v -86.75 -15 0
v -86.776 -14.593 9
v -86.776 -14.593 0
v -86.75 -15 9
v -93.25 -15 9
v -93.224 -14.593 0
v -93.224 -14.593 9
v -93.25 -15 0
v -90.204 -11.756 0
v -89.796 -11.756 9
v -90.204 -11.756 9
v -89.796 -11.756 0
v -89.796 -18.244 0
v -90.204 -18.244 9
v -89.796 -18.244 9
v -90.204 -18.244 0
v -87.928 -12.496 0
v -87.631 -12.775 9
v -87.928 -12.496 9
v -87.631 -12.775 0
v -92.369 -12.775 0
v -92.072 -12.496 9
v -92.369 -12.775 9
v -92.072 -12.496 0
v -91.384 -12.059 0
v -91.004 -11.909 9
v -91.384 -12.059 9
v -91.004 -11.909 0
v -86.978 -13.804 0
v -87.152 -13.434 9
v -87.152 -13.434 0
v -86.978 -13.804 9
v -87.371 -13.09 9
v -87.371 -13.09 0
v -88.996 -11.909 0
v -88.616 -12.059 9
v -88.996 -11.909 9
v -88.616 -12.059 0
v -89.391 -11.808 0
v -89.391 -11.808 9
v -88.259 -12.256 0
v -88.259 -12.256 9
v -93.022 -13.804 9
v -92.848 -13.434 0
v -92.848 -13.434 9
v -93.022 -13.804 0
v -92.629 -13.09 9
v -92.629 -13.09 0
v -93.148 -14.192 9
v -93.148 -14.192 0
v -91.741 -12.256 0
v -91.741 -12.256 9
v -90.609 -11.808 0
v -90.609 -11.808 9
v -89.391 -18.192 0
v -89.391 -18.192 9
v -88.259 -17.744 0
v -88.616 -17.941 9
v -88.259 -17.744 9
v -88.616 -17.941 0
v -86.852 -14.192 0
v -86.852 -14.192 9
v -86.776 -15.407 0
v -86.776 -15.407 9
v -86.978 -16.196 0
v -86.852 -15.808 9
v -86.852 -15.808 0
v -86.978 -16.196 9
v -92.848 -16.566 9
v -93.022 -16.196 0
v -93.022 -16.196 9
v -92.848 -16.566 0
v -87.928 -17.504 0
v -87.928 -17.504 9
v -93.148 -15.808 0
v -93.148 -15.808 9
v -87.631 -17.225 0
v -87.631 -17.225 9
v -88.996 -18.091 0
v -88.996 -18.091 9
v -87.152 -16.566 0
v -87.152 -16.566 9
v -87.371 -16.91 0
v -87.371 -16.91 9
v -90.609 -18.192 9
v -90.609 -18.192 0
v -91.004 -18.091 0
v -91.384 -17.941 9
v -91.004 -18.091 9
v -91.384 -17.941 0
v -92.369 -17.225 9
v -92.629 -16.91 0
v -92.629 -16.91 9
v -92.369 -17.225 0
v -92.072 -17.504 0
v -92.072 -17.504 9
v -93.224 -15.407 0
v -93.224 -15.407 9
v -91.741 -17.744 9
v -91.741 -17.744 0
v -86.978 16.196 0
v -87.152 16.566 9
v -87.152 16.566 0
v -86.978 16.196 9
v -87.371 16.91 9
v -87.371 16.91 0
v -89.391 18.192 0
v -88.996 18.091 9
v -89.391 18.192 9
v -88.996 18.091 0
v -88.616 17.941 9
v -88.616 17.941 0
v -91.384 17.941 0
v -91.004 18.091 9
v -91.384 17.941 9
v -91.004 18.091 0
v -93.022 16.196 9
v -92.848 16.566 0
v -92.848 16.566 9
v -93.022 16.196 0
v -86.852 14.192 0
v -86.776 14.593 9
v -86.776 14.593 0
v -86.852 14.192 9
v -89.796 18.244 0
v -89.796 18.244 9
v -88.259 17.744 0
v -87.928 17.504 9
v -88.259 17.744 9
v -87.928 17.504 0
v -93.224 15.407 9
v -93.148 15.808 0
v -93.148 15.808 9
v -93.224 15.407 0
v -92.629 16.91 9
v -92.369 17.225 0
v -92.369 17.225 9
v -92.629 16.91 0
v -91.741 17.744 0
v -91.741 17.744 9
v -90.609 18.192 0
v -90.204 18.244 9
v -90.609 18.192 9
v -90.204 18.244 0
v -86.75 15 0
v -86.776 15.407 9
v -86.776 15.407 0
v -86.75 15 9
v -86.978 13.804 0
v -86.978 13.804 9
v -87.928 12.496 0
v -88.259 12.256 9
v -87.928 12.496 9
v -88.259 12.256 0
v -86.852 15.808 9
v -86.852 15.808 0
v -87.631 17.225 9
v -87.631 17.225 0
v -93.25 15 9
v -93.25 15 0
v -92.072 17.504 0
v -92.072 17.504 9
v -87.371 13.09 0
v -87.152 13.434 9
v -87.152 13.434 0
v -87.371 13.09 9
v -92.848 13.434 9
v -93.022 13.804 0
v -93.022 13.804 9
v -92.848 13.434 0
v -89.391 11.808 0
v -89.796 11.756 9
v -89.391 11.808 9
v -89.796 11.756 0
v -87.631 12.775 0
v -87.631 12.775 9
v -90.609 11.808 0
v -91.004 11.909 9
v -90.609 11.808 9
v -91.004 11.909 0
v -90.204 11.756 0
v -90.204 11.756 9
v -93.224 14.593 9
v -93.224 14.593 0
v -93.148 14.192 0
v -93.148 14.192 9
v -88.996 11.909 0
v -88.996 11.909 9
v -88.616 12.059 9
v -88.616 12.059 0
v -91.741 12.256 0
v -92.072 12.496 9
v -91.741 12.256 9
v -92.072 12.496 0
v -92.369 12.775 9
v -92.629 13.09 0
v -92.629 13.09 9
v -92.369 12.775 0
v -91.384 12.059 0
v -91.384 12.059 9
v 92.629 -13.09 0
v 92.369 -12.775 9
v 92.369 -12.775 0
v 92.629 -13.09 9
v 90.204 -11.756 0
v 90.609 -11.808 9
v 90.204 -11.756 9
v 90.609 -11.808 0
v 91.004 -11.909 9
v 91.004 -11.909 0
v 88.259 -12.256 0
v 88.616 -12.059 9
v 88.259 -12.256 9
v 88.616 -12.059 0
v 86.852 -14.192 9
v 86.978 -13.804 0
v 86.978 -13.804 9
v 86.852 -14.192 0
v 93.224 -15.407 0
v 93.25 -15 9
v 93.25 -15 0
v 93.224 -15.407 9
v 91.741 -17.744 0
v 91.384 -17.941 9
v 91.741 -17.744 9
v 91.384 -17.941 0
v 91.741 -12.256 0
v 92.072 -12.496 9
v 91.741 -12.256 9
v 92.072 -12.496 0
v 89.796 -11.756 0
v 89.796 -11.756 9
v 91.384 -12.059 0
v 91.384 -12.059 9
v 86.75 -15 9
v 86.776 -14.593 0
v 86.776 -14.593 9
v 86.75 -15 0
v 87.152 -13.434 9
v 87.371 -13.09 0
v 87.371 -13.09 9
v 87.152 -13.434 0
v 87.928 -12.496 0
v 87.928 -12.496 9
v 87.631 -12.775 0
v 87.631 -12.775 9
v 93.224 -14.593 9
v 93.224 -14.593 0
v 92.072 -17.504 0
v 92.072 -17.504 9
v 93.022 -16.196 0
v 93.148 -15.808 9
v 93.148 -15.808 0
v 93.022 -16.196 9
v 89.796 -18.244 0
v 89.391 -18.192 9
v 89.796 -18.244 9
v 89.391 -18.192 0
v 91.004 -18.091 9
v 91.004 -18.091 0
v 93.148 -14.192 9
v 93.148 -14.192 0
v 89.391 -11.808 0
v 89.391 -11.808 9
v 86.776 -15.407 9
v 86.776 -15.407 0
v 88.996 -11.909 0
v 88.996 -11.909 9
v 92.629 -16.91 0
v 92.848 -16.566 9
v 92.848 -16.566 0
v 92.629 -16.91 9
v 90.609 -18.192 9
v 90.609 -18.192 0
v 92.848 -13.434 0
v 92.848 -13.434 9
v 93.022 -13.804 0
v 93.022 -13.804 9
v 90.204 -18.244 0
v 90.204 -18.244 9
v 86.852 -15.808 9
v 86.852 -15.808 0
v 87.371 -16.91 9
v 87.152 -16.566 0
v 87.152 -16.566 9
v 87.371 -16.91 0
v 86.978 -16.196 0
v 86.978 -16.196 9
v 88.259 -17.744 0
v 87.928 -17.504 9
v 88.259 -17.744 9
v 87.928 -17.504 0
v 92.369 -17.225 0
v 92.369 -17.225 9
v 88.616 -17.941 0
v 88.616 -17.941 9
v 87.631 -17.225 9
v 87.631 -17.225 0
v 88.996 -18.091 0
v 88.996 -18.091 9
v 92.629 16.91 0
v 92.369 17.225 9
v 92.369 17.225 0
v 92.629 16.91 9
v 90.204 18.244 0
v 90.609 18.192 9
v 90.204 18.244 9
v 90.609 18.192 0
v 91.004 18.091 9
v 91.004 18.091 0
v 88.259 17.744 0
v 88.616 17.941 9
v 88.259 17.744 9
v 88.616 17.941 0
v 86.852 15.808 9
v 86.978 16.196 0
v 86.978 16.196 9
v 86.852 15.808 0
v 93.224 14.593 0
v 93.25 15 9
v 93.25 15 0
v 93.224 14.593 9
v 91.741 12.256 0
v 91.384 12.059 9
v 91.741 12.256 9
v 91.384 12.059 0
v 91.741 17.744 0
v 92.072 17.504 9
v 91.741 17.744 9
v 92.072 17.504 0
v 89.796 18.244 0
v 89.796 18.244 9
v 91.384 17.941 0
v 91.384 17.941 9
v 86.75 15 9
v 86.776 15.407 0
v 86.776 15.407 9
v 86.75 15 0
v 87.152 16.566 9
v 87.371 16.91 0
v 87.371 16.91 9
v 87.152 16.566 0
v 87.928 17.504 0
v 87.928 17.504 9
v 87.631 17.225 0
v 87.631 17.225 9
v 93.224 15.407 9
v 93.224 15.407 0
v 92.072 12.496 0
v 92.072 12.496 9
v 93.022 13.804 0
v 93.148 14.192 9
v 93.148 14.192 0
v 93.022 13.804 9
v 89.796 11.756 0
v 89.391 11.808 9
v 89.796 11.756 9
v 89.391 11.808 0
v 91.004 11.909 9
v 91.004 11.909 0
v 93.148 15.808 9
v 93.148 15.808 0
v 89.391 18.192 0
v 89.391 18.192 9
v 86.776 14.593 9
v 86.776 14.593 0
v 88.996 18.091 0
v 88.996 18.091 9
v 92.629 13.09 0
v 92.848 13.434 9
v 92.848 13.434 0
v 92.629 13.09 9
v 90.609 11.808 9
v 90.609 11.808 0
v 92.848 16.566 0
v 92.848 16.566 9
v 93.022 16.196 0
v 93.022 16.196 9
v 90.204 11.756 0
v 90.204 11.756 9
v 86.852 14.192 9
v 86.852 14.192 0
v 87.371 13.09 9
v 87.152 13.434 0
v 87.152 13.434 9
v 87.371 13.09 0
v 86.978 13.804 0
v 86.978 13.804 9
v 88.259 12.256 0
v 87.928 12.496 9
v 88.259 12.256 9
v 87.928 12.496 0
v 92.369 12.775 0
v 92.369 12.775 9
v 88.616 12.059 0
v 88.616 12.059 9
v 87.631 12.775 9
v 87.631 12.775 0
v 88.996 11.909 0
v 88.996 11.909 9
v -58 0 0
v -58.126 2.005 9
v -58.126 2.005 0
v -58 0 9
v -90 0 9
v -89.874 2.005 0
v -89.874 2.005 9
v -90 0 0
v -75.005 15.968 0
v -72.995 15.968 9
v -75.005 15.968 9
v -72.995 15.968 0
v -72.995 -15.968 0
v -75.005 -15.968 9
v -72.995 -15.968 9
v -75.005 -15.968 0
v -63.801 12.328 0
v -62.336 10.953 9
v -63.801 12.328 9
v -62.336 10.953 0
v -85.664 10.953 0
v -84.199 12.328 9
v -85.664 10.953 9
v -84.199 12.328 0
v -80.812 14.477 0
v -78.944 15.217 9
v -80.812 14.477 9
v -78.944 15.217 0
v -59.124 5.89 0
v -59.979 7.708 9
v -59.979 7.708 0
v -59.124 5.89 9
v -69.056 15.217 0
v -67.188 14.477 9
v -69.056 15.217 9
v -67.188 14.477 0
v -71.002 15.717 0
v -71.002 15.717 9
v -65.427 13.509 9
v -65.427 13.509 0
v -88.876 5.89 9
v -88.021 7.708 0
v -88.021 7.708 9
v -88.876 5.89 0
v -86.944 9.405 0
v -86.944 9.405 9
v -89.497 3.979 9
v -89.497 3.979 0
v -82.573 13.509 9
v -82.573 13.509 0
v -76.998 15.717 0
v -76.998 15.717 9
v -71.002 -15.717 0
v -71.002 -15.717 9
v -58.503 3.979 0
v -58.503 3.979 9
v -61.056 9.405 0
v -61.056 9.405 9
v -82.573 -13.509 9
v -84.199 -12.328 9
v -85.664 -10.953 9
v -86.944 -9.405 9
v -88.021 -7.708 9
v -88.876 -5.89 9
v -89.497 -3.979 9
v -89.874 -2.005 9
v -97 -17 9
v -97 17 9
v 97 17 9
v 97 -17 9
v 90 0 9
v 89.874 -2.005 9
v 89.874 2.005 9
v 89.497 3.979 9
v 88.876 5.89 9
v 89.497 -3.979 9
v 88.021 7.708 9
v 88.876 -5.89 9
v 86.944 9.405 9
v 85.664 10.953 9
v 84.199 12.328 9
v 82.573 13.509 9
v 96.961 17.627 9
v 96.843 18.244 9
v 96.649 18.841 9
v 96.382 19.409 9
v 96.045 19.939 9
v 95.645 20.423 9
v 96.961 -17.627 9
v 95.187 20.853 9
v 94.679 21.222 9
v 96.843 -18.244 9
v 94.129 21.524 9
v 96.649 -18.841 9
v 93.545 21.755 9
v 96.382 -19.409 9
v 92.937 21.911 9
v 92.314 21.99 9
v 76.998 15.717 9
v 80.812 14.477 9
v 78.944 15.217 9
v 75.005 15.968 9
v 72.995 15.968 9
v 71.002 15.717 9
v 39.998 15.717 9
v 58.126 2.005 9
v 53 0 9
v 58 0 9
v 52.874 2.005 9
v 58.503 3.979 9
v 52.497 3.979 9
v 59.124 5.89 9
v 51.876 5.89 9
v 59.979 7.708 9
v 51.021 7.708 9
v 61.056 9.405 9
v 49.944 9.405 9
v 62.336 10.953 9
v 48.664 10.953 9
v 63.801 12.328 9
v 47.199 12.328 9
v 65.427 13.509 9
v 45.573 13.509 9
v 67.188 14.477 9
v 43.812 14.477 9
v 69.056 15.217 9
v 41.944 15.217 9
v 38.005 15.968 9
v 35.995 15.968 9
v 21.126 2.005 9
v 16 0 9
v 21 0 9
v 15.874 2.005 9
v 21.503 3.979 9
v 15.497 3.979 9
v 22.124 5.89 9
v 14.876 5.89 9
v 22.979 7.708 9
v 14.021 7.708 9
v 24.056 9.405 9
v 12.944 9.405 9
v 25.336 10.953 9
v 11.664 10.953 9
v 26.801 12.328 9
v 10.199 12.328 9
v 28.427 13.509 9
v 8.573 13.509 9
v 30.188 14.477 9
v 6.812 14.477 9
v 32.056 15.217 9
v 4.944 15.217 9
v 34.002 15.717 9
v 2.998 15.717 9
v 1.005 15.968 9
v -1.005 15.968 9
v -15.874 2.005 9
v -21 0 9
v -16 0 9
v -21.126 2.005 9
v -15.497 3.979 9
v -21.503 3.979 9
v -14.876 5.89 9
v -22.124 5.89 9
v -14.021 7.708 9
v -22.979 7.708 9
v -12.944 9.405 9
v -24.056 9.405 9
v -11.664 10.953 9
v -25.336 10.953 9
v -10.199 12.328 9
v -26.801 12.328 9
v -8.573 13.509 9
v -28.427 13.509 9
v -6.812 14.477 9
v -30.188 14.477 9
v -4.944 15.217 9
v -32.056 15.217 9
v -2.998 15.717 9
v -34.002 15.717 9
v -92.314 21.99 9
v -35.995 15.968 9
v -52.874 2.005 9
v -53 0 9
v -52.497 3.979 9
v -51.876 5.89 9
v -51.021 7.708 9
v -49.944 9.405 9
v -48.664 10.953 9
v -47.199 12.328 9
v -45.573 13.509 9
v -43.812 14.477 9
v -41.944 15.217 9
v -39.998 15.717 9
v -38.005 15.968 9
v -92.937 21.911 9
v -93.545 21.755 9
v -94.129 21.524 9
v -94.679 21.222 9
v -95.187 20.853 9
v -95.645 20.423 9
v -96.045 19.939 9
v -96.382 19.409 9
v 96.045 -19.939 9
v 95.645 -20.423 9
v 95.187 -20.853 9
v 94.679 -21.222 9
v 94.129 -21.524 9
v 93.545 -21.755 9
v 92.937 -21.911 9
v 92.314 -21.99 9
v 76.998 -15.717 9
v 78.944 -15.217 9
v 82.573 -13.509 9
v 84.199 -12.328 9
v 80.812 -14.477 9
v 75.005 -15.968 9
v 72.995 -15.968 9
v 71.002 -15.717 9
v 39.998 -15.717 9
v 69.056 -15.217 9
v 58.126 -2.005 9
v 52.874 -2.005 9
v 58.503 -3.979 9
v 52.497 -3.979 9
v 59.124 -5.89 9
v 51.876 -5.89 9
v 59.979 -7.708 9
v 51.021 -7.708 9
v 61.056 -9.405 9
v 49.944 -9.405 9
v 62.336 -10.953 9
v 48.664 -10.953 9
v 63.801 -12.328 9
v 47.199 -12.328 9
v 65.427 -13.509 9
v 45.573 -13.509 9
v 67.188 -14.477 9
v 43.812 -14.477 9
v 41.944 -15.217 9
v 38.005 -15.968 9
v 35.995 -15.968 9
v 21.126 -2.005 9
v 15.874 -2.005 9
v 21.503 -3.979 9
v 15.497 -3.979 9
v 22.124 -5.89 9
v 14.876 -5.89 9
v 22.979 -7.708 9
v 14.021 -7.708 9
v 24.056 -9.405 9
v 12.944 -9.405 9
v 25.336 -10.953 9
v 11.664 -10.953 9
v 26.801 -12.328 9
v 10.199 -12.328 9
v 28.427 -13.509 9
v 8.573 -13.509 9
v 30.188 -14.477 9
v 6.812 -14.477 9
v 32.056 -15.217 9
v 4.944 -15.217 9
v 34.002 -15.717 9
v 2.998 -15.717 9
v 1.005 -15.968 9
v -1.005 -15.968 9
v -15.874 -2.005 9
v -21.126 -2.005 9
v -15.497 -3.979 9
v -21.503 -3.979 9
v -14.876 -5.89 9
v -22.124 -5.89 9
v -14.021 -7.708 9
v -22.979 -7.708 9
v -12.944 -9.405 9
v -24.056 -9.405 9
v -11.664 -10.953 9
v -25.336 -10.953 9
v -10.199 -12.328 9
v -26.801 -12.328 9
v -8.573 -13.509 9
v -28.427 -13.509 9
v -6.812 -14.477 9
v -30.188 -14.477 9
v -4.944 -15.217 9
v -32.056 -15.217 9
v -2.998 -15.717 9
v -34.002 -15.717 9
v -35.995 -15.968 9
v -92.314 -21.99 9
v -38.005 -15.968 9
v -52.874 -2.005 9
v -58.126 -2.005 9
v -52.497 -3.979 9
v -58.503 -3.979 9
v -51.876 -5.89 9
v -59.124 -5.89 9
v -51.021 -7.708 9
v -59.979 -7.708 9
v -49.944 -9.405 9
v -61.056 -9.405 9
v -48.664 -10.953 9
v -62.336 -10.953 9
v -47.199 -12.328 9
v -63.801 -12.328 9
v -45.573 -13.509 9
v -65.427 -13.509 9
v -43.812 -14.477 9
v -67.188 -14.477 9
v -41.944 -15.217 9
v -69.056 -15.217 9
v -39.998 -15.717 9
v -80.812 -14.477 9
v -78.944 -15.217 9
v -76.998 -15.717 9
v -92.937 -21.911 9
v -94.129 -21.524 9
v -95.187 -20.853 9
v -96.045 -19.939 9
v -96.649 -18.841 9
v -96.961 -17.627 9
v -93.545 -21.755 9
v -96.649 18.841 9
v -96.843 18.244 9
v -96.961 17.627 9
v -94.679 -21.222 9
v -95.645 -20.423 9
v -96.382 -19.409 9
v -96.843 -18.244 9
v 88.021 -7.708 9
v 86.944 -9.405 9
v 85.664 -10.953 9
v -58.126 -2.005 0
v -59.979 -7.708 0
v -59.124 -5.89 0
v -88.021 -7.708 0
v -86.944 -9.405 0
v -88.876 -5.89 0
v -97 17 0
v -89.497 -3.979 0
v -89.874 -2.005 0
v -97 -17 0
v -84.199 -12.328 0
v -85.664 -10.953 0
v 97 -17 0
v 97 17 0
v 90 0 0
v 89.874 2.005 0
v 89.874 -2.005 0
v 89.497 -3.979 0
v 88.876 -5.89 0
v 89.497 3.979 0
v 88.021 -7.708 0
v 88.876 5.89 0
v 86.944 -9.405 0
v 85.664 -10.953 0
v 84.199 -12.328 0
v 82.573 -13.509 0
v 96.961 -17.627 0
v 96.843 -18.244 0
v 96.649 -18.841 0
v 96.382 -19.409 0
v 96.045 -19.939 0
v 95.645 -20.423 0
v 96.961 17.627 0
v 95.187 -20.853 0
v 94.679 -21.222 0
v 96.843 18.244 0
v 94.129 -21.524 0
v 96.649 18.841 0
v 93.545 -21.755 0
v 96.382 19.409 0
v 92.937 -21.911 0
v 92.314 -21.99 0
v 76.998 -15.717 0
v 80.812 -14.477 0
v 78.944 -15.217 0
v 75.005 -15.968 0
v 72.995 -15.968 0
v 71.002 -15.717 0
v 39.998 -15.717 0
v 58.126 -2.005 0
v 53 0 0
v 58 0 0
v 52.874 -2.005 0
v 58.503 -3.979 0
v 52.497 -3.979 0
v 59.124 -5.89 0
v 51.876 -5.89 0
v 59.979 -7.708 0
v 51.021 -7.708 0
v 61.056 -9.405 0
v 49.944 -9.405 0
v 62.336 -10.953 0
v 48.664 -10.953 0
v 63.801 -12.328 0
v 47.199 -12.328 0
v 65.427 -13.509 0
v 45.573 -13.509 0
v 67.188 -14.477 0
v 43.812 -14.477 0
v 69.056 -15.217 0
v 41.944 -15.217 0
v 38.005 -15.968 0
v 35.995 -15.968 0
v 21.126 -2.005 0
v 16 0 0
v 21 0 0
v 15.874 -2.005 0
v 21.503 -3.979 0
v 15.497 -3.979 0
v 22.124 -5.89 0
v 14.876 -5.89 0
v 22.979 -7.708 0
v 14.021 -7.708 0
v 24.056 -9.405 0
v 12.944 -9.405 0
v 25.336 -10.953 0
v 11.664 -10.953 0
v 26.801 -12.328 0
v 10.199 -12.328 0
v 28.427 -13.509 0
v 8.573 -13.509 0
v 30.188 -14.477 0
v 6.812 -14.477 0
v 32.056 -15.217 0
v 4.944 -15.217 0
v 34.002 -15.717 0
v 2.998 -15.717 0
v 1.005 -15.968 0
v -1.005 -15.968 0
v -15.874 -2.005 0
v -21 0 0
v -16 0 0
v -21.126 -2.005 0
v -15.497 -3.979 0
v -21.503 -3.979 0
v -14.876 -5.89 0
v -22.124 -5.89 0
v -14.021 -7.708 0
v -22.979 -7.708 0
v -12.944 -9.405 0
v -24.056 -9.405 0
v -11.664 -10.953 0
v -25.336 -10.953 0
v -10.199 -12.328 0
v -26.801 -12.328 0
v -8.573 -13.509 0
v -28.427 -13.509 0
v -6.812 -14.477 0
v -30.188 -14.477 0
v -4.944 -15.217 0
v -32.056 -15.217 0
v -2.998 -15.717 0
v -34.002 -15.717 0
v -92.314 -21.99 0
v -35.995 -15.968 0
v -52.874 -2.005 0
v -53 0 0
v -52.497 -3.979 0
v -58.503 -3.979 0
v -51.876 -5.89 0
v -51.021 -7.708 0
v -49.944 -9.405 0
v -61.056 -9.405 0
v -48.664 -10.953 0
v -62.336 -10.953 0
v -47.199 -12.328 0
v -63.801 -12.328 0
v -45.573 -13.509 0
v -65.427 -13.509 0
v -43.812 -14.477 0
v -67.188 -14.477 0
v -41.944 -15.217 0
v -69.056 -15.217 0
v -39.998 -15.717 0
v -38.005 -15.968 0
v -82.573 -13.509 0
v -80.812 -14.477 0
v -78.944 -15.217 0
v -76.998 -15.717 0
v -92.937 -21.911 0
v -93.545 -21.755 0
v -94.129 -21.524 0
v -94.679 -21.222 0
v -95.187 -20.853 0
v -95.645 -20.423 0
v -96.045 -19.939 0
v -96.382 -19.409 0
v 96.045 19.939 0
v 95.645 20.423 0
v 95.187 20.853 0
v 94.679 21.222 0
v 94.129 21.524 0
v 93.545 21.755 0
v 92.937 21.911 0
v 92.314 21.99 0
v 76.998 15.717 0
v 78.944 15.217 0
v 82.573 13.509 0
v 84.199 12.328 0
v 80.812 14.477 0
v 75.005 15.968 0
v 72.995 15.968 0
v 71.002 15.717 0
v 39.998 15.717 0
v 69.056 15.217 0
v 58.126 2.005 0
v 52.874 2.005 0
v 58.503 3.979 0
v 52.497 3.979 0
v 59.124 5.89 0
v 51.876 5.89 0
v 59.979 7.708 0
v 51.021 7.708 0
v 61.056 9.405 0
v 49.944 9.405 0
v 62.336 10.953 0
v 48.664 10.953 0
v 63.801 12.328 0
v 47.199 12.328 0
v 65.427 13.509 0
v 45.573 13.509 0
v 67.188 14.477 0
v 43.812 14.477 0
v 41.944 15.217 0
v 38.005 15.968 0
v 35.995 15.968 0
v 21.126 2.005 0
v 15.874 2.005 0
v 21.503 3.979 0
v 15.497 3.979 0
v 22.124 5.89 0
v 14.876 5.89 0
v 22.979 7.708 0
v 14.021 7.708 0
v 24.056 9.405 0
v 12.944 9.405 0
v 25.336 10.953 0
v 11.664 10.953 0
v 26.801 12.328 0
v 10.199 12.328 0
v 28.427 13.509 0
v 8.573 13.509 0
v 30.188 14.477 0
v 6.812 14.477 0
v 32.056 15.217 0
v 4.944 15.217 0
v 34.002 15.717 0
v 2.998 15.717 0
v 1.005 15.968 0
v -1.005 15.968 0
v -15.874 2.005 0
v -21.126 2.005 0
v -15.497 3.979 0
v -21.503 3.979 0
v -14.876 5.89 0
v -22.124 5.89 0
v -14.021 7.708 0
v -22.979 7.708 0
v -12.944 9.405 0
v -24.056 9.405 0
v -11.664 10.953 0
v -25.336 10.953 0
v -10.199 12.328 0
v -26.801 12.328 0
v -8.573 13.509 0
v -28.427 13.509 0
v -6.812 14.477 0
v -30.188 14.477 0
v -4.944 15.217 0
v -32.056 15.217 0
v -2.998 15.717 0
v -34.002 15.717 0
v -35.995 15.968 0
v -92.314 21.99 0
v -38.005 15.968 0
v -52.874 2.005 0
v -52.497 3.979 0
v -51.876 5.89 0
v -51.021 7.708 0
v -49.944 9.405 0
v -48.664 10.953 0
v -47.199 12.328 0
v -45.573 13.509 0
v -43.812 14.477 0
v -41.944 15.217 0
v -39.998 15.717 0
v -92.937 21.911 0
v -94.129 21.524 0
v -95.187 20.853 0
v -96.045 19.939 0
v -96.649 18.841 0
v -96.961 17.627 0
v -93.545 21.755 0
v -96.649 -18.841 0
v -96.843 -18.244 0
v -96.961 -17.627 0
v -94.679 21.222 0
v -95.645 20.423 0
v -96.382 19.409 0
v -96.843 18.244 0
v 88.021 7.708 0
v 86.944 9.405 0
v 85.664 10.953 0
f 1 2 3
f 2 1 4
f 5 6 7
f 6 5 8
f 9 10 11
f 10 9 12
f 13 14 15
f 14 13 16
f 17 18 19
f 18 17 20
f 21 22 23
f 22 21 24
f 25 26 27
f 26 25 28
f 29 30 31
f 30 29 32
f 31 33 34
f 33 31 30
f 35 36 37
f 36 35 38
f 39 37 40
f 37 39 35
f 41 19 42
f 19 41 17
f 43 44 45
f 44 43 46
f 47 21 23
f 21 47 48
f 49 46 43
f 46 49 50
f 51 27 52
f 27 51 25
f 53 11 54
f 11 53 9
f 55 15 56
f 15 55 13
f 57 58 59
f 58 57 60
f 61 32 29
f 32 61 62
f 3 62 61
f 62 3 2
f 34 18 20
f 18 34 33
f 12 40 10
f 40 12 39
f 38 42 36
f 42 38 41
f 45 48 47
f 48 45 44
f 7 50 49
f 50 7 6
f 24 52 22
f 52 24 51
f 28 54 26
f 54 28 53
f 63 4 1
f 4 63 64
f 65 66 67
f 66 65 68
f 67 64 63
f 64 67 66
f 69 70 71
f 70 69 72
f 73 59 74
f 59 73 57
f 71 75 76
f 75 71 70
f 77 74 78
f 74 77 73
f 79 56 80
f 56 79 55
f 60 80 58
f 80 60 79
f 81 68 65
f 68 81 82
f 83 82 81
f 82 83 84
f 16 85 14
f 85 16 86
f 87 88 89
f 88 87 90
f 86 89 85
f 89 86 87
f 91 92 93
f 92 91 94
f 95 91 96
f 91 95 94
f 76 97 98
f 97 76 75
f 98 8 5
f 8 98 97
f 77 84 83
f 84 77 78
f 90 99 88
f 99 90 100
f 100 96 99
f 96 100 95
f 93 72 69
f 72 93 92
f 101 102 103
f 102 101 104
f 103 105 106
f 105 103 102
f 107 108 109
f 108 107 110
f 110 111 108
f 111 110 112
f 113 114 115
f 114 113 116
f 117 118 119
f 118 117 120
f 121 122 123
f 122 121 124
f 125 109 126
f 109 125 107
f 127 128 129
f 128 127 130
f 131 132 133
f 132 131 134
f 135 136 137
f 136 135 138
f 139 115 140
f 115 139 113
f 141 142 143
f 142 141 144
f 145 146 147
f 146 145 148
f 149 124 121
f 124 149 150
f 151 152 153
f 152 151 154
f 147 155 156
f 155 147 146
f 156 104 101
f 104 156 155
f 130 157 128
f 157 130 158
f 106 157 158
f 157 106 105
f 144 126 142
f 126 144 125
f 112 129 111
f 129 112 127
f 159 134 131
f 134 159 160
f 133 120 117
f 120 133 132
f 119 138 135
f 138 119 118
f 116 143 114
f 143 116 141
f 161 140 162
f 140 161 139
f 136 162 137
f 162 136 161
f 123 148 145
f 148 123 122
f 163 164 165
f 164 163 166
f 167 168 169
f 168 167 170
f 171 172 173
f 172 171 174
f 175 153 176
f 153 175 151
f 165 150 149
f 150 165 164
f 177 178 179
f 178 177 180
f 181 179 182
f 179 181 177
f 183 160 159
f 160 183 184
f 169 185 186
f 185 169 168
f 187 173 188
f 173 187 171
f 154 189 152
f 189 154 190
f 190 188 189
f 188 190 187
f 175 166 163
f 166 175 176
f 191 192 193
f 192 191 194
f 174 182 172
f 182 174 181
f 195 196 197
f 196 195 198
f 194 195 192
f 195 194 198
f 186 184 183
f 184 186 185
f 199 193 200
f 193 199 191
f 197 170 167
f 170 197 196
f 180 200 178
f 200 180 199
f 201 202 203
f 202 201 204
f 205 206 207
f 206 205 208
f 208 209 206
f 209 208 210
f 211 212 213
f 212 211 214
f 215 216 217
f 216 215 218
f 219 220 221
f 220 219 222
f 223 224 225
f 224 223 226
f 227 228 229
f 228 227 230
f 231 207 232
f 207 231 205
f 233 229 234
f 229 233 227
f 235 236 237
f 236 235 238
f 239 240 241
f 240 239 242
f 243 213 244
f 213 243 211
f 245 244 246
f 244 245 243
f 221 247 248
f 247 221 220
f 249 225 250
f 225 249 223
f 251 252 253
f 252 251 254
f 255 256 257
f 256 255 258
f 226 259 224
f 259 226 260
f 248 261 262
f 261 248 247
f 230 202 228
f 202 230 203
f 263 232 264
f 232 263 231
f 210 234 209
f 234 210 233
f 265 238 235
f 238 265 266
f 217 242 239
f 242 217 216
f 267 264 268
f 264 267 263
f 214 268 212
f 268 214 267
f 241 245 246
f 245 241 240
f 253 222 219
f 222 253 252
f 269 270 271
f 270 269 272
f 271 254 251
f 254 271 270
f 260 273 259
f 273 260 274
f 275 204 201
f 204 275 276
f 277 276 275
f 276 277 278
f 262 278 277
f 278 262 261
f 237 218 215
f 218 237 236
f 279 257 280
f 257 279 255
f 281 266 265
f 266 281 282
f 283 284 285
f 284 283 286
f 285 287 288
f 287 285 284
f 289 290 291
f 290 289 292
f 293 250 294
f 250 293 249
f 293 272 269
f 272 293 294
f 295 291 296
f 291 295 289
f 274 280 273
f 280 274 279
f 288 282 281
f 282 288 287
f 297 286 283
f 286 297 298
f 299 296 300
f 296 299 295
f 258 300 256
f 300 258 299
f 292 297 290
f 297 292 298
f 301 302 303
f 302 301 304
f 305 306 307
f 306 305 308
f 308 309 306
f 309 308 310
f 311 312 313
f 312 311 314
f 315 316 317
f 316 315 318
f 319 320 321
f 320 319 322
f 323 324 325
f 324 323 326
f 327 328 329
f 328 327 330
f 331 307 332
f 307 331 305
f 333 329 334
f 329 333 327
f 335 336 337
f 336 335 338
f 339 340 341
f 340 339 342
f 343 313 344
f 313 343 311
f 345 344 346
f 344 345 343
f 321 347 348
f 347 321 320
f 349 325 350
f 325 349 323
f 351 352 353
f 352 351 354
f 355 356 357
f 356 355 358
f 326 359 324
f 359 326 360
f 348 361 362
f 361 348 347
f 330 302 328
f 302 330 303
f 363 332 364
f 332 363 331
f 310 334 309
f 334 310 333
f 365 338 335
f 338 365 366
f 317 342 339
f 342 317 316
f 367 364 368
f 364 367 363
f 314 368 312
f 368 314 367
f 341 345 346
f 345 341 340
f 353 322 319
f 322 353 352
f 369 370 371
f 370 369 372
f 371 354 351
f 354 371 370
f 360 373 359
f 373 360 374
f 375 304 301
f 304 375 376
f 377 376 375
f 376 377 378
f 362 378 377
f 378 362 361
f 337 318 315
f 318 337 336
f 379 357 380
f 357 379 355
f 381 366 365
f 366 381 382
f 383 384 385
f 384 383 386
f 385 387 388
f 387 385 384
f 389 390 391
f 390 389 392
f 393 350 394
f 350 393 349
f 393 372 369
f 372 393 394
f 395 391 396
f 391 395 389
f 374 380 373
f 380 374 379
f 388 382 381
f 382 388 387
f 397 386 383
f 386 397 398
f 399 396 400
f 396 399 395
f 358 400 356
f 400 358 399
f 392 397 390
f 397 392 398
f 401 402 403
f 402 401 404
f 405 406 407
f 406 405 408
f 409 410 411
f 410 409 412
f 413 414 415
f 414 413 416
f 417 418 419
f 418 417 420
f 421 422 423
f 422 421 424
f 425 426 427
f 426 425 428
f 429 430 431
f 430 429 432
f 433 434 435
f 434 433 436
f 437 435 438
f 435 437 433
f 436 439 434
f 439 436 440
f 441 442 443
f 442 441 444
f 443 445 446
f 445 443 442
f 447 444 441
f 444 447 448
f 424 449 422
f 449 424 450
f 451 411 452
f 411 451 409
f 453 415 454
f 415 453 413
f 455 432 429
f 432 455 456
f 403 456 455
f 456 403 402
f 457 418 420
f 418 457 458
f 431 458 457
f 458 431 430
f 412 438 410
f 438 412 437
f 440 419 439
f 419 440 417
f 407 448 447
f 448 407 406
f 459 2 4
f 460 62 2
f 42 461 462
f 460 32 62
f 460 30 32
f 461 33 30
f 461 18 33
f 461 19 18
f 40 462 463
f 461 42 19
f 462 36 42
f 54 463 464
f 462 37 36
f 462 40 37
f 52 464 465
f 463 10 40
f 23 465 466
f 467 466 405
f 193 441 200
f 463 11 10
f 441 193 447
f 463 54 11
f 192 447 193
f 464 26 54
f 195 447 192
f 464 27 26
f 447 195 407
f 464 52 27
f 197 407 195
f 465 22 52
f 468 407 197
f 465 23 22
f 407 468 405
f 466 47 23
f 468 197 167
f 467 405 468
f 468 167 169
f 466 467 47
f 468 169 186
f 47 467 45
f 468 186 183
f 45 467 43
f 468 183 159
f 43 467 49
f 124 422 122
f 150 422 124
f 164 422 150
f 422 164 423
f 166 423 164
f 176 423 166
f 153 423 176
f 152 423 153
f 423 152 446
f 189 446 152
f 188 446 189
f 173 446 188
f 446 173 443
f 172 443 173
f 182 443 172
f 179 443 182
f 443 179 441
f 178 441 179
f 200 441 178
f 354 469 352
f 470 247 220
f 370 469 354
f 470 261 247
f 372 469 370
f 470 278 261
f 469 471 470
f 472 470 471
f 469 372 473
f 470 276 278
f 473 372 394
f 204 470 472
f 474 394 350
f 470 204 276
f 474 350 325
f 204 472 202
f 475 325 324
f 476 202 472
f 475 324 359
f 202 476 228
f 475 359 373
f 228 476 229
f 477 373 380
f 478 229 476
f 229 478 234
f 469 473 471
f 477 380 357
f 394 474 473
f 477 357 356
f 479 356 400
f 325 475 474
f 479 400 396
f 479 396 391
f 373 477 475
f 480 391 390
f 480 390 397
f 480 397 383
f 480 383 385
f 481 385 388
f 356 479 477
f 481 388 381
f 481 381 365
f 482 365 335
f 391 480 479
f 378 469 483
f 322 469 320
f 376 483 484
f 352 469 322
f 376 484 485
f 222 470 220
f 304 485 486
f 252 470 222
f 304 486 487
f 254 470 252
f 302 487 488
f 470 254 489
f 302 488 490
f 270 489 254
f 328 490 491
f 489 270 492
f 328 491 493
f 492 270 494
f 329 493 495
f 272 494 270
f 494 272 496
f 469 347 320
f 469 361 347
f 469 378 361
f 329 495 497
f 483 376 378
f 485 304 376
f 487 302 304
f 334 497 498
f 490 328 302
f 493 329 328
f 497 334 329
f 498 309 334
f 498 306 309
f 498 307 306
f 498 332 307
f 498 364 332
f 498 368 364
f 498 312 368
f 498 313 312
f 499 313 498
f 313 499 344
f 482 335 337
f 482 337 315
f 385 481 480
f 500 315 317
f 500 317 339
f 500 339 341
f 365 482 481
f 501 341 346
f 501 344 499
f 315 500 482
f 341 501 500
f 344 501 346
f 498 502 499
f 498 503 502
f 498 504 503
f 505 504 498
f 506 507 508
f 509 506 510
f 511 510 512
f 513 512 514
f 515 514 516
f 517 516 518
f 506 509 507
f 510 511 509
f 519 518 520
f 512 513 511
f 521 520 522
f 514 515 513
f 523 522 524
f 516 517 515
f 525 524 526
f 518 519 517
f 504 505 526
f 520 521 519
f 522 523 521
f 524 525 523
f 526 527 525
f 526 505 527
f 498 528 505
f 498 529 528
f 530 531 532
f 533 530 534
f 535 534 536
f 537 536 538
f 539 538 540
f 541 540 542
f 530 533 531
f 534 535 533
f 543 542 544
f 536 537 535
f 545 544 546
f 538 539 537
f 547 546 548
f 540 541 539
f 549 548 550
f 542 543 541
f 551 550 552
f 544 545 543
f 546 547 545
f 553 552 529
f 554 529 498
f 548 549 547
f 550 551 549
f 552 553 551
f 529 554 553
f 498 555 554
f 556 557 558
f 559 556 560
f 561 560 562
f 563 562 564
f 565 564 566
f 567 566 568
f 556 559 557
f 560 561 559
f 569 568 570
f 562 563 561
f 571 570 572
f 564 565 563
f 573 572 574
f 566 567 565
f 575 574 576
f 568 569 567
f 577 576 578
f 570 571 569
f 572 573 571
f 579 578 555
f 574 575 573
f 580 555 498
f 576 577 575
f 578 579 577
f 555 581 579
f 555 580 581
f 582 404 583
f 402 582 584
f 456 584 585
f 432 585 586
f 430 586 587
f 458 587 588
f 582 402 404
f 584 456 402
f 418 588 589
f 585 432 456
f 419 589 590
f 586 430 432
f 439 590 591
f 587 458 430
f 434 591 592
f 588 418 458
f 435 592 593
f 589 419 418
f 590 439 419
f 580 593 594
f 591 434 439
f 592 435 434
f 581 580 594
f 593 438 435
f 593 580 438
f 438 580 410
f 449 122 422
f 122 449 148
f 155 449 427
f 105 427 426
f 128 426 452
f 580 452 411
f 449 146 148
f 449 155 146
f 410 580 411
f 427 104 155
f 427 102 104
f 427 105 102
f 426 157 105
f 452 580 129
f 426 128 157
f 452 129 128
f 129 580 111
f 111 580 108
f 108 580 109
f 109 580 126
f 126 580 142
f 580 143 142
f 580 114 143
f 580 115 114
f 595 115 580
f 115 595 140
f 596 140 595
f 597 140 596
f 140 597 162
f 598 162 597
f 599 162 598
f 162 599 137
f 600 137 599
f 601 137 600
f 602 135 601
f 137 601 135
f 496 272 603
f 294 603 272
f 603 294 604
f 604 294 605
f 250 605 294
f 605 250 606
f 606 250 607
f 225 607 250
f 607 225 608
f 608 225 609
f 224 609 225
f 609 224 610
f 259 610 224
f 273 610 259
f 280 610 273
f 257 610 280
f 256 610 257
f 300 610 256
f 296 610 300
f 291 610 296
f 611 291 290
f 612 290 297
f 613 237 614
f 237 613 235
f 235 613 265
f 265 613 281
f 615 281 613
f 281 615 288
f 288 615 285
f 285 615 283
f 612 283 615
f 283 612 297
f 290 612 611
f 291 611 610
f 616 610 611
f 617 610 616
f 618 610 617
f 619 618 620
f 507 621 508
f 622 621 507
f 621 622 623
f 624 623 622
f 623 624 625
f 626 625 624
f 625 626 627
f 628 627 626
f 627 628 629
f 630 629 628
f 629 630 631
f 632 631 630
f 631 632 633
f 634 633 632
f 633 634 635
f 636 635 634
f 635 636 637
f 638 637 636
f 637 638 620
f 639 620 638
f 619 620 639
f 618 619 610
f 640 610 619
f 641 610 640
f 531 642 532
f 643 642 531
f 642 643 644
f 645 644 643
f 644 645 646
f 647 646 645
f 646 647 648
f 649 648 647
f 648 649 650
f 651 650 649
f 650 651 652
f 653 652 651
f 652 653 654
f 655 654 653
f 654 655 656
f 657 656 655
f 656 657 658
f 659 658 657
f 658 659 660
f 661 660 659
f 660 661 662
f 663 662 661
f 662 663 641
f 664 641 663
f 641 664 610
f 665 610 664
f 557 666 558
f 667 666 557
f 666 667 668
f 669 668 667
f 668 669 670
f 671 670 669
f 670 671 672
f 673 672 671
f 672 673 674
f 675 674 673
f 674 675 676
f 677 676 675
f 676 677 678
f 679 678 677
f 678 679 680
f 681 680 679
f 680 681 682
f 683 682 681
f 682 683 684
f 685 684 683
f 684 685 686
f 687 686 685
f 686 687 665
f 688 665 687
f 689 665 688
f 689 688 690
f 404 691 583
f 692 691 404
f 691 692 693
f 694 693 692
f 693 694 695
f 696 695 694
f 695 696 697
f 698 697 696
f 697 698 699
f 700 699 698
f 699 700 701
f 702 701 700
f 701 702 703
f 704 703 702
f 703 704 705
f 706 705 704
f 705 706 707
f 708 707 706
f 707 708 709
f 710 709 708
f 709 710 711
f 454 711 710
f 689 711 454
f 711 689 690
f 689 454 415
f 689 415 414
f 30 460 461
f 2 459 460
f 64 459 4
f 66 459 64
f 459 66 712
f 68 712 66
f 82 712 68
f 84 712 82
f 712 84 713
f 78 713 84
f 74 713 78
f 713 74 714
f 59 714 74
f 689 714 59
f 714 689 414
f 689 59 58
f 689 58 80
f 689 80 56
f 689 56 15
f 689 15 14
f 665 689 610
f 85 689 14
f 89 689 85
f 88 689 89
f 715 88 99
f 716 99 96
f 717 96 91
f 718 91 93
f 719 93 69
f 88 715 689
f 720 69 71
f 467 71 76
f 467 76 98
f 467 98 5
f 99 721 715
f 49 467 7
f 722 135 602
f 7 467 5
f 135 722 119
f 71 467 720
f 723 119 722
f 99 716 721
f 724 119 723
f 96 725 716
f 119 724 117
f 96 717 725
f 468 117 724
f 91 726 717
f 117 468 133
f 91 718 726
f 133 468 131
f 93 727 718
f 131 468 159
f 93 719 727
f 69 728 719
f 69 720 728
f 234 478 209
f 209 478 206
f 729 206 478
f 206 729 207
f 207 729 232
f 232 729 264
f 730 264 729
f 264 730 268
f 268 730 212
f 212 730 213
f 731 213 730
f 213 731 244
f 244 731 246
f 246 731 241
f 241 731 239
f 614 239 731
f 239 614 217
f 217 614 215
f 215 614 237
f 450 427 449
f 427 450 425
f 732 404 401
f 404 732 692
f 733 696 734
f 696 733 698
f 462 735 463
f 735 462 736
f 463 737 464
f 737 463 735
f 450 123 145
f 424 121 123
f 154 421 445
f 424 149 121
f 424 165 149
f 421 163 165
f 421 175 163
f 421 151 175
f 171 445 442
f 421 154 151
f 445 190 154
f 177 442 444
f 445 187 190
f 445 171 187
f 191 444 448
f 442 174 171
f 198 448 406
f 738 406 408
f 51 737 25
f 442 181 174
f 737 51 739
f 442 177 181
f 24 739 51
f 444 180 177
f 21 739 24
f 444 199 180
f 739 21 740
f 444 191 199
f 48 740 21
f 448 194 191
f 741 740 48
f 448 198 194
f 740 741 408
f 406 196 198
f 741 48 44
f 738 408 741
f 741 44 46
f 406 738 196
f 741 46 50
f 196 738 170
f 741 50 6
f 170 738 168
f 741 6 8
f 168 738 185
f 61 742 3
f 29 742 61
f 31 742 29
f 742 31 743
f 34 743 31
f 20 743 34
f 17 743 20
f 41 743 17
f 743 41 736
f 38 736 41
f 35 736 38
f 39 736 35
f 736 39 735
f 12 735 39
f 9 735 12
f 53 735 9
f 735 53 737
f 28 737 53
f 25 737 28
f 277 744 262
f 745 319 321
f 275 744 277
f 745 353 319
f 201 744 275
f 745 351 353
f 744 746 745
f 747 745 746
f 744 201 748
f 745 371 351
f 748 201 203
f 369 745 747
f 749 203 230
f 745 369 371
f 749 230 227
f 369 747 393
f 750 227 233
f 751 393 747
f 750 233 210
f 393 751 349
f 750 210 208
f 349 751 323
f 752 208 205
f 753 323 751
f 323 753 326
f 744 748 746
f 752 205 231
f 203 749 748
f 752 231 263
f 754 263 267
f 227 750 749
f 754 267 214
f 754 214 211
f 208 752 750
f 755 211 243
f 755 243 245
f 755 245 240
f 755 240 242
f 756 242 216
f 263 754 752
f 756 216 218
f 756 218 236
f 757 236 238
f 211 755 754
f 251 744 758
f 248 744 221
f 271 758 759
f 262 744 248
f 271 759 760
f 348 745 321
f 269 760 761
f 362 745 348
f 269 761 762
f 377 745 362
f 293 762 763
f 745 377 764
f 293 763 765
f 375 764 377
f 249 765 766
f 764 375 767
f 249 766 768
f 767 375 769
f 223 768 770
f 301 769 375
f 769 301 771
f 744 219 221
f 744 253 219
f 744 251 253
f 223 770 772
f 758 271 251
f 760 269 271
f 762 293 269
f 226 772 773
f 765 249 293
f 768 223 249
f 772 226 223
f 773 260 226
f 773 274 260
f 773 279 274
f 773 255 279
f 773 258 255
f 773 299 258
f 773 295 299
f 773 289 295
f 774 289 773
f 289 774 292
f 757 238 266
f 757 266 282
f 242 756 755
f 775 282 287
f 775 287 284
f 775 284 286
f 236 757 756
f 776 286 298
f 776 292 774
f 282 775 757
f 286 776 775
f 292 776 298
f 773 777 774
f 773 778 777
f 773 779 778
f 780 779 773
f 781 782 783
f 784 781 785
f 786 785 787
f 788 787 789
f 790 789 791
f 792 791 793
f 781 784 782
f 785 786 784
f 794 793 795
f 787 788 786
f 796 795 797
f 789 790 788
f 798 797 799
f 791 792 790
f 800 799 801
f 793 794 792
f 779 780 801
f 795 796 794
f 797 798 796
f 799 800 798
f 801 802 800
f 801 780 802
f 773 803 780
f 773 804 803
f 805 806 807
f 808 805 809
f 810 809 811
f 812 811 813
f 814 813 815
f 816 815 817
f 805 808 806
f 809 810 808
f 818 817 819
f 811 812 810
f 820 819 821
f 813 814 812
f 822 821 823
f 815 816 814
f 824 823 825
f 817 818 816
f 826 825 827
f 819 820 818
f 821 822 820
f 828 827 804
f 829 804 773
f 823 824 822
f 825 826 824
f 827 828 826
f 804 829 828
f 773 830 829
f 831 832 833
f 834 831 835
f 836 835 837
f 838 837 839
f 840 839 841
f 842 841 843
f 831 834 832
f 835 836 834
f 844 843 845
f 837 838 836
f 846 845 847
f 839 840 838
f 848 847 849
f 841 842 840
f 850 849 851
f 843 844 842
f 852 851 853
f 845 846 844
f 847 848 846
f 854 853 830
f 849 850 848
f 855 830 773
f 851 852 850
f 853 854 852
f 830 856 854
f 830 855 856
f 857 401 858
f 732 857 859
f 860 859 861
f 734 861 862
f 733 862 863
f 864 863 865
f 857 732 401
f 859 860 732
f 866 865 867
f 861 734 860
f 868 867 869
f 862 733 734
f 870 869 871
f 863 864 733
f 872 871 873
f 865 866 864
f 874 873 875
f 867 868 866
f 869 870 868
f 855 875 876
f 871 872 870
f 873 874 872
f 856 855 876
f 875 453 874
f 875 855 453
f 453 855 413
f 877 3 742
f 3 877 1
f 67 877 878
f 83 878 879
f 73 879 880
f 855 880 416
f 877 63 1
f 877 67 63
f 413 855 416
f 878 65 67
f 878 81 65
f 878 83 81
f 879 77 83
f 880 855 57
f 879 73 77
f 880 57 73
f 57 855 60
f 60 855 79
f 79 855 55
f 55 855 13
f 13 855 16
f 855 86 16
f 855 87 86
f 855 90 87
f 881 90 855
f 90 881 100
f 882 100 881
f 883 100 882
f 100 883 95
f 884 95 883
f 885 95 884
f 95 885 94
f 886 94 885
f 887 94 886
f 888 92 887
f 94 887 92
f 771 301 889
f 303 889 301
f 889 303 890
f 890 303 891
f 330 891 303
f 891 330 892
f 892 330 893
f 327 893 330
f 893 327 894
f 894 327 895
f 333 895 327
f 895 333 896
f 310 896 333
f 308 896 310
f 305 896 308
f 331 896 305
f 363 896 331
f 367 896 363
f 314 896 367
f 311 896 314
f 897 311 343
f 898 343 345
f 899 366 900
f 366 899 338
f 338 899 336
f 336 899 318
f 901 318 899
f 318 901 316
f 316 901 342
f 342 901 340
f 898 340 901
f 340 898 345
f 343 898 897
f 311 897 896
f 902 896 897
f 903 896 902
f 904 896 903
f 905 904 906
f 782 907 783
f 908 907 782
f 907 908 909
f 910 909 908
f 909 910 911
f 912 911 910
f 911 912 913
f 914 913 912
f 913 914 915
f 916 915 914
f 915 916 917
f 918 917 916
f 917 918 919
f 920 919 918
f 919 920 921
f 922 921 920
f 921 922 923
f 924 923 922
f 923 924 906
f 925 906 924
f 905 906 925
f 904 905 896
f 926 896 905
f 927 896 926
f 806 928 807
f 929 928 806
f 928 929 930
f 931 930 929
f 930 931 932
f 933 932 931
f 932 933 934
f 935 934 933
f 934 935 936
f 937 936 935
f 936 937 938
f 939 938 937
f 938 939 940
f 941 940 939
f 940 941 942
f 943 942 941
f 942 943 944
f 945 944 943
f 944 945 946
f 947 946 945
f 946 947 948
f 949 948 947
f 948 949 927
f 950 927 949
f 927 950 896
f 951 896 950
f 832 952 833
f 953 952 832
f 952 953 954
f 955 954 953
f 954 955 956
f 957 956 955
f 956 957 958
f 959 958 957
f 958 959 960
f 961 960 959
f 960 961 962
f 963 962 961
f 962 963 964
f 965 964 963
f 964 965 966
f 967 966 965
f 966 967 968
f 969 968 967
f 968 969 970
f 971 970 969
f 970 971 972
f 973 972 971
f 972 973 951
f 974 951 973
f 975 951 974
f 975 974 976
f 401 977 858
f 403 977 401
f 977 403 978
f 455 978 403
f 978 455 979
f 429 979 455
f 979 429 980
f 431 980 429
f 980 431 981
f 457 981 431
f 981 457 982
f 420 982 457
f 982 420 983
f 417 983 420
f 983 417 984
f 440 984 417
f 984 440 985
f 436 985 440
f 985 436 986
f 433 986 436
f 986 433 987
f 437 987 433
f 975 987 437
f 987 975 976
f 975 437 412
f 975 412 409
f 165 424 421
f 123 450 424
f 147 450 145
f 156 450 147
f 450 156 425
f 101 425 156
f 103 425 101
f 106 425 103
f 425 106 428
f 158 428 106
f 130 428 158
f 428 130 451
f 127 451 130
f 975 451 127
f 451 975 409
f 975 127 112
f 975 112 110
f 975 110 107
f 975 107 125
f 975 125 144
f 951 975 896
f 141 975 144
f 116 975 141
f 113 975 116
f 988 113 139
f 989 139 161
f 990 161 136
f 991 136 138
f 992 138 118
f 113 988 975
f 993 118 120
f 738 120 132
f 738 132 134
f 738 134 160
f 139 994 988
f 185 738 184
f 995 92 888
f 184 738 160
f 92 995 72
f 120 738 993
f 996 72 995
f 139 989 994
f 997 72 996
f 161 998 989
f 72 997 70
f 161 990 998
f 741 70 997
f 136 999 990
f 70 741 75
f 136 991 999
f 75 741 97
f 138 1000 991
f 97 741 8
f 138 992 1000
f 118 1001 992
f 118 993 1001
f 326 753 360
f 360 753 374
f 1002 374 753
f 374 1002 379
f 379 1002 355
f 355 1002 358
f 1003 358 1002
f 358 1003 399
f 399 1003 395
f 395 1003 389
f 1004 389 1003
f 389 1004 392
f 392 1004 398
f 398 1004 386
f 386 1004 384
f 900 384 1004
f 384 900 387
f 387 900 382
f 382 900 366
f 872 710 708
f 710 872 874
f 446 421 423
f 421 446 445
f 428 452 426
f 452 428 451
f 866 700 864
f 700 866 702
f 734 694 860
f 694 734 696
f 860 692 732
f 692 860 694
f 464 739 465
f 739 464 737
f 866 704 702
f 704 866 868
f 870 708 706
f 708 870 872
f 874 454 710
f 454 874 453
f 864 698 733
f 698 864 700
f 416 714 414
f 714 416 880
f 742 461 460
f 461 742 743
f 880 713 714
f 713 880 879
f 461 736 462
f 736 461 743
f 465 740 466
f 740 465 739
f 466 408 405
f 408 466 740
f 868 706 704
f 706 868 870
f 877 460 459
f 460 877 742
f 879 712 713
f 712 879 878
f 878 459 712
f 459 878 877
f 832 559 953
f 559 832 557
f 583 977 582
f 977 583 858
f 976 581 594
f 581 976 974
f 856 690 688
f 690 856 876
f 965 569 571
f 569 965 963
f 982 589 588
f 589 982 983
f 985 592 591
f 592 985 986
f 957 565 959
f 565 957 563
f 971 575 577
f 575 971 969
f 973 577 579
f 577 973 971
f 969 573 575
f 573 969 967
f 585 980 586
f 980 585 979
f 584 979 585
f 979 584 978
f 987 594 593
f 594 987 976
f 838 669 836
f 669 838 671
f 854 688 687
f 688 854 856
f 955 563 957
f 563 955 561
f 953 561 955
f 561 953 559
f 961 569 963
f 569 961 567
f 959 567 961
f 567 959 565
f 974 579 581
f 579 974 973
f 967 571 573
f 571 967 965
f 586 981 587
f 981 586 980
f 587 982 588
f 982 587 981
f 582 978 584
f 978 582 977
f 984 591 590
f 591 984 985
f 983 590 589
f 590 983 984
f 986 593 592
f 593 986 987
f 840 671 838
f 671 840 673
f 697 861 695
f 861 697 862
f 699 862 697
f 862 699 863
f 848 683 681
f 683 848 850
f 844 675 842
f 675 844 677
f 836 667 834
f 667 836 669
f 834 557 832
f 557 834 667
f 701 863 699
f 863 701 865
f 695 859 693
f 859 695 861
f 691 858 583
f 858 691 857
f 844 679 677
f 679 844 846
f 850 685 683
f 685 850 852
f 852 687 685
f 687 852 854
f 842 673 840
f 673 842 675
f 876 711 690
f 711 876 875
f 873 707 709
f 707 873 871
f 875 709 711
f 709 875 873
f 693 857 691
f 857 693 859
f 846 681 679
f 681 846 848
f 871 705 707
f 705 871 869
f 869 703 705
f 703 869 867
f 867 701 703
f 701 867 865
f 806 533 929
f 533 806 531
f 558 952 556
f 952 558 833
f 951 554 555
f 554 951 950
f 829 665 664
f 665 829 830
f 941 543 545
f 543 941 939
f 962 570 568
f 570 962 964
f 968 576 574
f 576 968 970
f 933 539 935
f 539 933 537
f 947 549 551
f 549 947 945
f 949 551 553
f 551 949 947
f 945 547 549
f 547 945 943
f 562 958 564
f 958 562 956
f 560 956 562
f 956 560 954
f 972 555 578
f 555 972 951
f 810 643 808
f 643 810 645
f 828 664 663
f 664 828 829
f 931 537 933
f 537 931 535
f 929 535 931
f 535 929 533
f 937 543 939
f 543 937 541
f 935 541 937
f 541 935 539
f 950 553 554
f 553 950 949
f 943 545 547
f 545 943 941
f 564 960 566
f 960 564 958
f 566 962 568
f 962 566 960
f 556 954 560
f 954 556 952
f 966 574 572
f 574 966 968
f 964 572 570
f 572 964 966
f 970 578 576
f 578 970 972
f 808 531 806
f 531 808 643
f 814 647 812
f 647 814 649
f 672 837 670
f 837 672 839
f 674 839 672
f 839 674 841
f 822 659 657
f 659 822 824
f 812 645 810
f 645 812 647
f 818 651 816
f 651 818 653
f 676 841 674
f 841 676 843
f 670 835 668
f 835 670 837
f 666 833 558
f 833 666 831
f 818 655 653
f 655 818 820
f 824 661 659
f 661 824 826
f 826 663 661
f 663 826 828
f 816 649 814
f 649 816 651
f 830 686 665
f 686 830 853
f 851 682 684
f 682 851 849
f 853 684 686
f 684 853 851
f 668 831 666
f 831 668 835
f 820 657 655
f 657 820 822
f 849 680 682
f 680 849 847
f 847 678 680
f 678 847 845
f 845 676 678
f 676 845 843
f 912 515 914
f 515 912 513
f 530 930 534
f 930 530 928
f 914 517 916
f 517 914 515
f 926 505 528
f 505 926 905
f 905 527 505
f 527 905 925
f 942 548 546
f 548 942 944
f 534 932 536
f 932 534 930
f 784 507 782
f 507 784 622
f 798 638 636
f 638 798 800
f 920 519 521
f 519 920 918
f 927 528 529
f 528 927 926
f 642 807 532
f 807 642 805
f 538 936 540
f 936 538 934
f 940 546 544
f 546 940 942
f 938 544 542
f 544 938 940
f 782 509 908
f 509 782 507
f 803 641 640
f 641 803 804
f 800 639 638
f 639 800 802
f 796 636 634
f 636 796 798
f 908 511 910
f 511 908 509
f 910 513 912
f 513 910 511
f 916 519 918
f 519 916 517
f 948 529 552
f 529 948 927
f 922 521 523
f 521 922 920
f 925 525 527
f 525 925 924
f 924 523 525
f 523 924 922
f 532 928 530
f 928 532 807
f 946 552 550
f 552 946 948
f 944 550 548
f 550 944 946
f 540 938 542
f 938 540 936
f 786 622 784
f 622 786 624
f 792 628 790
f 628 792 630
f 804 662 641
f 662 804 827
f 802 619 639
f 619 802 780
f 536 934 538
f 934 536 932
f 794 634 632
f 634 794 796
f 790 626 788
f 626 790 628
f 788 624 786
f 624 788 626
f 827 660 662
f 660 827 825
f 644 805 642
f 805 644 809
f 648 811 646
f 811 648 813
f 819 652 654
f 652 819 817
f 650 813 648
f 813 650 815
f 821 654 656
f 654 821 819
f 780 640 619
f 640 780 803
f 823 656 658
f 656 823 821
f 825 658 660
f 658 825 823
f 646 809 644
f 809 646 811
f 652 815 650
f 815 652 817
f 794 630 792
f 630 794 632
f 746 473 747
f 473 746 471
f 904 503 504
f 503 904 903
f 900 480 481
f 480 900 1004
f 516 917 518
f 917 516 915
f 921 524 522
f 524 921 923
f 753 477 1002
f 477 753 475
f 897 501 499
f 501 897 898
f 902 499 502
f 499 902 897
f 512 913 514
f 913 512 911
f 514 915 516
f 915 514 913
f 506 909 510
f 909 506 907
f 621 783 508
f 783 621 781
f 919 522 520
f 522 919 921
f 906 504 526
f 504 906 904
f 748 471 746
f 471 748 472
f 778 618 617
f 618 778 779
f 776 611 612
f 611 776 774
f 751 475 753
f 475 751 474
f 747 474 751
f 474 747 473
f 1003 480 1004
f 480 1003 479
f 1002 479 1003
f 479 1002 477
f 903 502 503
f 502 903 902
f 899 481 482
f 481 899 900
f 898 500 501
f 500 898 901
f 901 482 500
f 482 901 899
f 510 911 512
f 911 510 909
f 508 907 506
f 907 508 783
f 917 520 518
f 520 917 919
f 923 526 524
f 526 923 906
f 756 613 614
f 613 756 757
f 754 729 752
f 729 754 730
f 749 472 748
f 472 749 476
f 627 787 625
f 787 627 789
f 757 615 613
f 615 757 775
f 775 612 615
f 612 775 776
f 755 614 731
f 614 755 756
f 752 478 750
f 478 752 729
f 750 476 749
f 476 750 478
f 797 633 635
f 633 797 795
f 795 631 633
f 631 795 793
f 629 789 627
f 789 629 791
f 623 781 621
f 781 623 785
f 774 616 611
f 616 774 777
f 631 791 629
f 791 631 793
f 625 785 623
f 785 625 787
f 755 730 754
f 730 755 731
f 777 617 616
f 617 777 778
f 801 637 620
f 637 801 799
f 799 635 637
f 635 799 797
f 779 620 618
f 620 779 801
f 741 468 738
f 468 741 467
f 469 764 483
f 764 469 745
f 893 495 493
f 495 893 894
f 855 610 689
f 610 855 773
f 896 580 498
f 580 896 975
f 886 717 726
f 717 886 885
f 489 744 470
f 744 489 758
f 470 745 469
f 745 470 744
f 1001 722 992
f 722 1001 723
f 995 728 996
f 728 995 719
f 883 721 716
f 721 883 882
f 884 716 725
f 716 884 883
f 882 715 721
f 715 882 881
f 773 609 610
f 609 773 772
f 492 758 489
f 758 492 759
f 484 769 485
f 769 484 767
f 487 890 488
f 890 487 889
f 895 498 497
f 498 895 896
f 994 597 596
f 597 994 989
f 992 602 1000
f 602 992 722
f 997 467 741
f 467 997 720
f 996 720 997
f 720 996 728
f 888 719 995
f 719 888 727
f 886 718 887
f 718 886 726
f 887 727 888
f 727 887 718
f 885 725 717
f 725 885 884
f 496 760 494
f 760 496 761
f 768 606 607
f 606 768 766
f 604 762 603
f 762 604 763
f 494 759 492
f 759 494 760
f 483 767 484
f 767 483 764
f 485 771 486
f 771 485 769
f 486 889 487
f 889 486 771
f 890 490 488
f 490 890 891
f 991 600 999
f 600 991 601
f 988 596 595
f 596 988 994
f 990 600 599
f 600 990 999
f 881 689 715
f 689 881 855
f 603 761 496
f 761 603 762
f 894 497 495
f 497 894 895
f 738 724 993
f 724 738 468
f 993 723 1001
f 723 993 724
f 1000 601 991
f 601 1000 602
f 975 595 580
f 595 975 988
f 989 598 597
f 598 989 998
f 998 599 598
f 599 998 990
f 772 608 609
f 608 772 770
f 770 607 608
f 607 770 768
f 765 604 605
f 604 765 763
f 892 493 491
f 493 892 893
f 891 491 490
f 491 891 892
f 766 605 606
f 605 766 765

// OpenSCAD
$fn = 50;


difference() {
	union() {
		hull() {
			translate(v = [-92.0000000000, 17.0000000000, 0]) {
				cylinder(h = 9, r = 5);
			}
			translate(v = [92.0000000000, 17.0000000000, 0]) {
				cylinder(h = 9, r = 5);
			}
			translate(v = [-92.0000000000, -17.0000000000, 0]) {
				cylinder(h = 9, r = 5);
			}
			translate(v = [92.0000000000, -17.0000000000, 0]) {
				cylinder(h = 9, r = 5);
			}
		}
	}
	union() {
		#translate(v = [-90.0000000000, -15.0000000000, -100.0000000000]) {
			cylinder(h = 200, r = 3.2500000000);
		}
		#translate(v = [-90.0000000000, 15.0000000000, -100.0000000000]) {
			cylinder(h = 200, r = 3.2500000000);
		}
		#translate(v = [90.0000000000, -15.0000000000, -100.0000000000]) {
			cylinder(h = 200, r = 3.2500000000);
		}
		#translate(v = [90.0000000000, 15.0000000000, -100.0000000000]) {
			cylinder(h = 200, r = 3.2500000000);
		}
		#translate(v = [-74.0000000000, 0, 0]) {
			cylinder(h = 9, r = 16.0000000000);
		}
		#translate(v = [-37.0000000000, 0, 0]) {
			cylinder(h = 9, r = 16.0000000000);
		}
		#cylinder(h = 9, r = 16.0000000000);
		#translate(v = [37.0000000000, 0, 0]) {
			cylinder(h = 9, r = 16.0000000000);
		}
		#translate(v = [74.0000000000, 0, 0]) {
			cylinder(h = 9, r = 16.0000000000);
		}
	}
}
